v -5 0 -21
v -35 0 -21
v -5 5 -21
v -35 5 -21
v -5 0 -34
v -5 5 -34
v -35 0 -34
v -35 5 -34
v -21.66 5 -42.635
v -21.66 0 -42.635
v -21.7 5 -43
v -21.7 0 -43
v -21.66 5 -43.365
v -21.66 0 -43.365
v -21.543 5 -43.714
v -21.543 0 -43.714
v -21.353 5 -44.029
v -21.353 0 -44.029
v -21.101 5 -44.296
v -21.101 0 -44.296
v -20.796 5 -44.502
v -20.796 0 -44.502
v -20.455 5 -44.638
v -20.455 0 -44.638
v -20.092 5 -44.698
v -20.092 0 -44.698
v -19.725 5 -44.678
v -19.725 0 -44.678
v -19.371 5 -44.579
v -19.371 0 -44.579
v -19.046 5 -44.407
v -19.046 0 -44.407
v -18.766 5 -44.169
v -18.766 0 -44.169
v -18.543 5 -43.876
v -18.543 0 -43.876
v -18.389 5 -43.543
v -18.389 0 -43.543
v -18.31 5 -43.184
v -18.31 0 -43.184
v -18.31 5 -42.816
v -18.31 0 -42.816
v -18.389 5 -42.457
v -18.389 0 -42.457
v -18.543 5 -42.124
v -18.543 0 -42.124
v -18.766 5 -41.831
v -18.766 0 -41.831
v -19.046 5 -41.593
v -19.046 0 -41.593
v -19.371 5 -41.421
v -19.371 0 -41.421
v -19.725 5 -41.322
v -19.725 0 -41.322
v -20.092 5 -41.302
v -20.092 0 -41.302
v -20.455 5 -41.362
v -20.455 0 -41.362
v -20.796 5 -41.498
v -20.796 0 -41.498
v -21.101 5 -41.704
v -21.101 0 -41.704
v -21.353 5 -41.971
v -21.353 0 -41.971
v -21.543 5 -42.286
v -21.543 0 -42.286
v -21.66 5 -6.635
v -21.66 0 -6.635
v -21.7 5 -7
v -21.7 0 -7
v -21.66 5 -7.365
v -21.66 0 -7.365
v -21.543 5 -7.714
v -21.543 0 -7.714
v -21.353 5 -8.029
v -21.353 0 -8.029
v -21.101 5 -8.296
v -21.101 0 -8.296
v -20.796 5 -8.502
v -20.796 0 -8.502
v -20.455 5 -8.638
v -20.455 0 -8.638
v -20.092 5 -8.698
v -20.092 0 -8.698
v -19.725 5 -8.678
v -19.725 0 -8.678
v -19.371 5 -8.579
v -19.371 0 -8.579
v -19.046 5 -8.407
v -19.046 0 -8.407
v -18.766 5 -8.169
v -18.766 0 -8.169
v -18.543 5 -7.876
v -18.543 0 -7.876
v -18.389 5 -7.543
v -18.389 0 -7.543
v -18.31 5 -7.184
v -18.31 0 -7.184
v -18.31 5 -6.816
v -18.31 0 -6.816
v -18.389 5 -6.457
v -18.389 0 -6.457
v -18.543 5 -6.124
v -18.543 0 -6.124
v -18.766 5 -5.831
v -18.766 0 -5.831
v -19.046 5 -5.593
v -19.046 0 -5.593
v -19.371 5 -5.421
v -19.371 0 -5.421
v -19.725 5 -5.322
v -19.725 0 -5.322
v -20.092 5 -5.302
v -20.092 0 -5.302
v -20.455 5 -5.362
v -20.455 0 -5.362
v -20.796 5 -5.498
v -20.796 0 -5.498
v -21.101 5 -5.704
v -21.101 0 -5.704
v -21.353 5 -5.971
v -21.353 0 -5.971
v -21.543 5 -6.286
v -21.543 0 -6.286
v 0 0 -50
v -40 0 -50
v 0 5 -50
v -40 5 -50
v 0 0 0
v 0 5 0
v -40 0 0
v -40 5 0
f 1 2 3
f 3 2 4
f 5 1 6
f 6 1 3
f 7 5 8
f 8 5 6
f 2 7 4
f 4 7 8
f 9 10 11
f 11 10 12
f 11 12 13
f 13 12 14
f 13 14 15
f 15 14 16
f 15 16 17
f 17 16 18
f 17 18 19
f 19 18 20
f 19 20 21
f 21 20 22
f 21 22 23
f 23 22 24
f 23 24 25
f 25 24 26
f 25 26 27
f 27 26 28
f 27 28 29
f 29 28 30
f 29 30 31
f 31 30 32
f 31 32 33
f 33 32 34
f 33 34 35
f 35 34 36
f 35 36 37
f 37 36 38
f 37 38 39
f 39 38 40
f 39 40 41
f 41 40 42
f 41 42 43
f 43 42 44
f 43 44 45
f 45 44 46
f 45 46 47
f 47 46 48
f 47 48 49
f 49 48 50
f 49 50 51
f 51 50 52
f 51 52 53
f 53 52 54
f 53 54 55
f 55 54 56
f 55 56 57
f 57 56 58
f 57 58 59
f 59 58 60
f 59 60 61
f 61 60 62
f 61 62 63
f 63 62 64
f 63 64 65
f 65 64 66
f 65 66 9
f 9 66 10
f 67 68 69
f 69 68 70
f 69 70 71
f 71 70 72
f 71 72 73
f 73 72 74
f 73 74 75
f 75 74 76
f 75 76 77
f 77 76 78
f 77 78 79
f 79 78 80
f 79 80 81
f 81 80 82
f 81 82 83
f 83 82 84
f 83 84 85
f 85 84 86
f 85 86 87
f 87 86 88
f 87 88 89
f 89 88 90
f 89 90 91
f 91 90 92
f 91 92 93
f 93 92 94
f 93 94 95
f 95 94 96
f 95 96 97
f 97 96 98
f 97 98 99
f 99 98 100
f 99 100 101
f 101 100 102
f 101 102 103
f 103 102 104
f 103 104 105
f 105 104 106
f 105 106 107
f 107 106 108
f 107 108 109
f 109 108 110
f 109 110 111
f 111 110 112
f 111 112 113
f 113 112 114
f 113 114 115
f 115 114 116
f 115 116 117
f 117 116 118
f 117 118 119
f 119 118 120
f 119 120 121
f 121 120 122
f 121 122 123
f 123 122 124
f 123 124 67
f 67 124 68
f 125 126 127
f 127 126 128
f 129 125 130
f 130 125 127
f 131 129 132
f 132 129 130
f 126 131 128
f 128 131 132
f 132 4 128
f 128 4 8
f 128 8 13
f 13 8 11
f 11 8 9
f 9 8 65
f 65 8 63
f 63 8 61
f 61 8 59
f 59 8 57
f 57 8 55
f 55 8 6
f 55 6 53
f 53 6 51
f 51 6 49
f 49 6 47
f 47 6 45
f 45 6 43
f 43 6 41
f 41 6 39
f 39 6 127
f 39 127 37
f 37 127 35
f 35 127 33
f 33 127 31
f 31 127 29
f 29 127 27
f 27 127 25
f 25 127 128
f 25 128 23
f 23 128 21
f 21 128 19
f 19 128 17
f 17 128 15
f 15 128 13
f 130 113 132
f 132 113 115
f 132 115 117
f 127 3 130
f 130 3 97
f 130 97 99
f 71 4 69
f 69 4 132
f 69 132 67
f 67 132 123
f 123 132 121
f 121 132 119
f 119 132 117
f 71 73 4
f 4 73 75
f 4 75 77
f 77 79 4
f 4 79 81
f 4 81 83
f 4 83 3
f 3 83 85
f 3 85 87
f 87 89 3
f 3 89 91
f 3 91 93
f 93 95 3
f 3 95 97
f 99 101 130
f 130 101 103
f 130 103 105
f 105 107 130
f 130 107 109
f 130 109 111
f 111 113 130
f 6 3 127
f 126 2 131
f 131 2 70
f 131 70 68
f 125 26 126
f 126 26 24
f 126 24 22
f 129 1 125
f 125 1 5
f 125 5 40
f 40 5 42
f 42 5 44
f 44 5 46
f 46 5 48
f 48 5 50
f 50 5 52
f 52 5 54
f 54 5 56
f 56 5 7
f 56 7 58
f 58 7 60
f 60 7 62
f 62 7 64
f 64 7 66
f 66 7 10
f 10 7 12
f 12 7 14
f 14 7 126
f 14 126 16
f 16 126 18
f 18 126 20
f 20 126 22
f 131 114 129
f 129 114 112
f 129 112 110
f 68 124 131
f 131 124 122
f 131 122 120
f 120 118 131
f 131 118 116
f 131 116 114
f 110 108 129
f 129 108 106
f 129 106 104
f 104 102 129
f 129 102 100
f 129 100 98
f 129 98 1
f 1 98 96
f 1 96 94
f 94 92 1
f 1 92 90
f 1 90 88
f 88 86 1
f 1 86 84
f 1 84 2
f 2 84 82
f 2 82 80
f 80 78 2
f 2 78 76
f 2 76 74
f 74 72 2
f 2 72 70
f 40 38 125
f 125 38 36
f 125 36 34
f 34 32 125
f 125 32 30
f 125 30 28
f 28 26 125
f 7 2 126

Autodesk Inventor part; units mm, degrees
ref_plane "YZ Plane" through (0, 0, 0) normal (1, 0, 0) x (0, 1, 0)
ref_plane "XZ Plane" through (0, 0, 0) normal (0, 1, 0) x (-1, 0, 0)
ref_plane "XY Plane" through (0, 0, 0) normal (0, 0, 1) x (1, 0, 0)
sketch "Sketch1" plane through (0, 0, 0) normal (0, 1, 0) x (-1, 0, 0)
  line L0 (0, 0) -> (40, 0)
  line L1 (40, 0) -> (40, -50)
  line L2 (40, -50) -> (0, -50)
  line L3 (0, -50) -> (0, 0)
  line L4 (40, 0) -> (0, 0)
  line L5 (0, 0) -> (0, -18)
  line L6 (5, -18) -> (35, -18)
  line L7 (40, -18) -> (40, 0)
  line L8 (35, -18) -> (5, -18)
  line L9 (0, -18) -> (0, -37)
  line L10 (5, -37) -> (35, -37)
  line L11 (40, -37) -> (40, -18)
  circle A0 centre (20, -7) radius 1.7
  circle A1 centre (20, -43) radius 1.7
  line L12 (20, -18) -> (35, -18)
  line L13 (35, -18) -> (35, -37)
  line L14 (35, -37) -> (20, -37)
  line L15 (20, -37) -> (5, -37)
  line L16 (5, -37) -> (5, -18)
  line L17 (5, -18) -> (20, -18)
  line L18 (35, -21) -> (5, -21)
  line L19 (5, -21) -> (5, -34)
  line L20 (5, -34) -> (35, -34)
  line L21 (35, -34) -> (35, -21)
  dimension "d0" = 40
  dimension "d1" = 50
  dimension "d2" = 3.4
  dimension "d3" = 3.4
  dimension "d6" = 19
extrude "Extrusion1" add sketch "Sketch1" along normal blind 5 contours L0 L1 L2 L3 | L6 L13 L18 L16 | L20 L13 L10 L16
properties part number "_3DPrint"
